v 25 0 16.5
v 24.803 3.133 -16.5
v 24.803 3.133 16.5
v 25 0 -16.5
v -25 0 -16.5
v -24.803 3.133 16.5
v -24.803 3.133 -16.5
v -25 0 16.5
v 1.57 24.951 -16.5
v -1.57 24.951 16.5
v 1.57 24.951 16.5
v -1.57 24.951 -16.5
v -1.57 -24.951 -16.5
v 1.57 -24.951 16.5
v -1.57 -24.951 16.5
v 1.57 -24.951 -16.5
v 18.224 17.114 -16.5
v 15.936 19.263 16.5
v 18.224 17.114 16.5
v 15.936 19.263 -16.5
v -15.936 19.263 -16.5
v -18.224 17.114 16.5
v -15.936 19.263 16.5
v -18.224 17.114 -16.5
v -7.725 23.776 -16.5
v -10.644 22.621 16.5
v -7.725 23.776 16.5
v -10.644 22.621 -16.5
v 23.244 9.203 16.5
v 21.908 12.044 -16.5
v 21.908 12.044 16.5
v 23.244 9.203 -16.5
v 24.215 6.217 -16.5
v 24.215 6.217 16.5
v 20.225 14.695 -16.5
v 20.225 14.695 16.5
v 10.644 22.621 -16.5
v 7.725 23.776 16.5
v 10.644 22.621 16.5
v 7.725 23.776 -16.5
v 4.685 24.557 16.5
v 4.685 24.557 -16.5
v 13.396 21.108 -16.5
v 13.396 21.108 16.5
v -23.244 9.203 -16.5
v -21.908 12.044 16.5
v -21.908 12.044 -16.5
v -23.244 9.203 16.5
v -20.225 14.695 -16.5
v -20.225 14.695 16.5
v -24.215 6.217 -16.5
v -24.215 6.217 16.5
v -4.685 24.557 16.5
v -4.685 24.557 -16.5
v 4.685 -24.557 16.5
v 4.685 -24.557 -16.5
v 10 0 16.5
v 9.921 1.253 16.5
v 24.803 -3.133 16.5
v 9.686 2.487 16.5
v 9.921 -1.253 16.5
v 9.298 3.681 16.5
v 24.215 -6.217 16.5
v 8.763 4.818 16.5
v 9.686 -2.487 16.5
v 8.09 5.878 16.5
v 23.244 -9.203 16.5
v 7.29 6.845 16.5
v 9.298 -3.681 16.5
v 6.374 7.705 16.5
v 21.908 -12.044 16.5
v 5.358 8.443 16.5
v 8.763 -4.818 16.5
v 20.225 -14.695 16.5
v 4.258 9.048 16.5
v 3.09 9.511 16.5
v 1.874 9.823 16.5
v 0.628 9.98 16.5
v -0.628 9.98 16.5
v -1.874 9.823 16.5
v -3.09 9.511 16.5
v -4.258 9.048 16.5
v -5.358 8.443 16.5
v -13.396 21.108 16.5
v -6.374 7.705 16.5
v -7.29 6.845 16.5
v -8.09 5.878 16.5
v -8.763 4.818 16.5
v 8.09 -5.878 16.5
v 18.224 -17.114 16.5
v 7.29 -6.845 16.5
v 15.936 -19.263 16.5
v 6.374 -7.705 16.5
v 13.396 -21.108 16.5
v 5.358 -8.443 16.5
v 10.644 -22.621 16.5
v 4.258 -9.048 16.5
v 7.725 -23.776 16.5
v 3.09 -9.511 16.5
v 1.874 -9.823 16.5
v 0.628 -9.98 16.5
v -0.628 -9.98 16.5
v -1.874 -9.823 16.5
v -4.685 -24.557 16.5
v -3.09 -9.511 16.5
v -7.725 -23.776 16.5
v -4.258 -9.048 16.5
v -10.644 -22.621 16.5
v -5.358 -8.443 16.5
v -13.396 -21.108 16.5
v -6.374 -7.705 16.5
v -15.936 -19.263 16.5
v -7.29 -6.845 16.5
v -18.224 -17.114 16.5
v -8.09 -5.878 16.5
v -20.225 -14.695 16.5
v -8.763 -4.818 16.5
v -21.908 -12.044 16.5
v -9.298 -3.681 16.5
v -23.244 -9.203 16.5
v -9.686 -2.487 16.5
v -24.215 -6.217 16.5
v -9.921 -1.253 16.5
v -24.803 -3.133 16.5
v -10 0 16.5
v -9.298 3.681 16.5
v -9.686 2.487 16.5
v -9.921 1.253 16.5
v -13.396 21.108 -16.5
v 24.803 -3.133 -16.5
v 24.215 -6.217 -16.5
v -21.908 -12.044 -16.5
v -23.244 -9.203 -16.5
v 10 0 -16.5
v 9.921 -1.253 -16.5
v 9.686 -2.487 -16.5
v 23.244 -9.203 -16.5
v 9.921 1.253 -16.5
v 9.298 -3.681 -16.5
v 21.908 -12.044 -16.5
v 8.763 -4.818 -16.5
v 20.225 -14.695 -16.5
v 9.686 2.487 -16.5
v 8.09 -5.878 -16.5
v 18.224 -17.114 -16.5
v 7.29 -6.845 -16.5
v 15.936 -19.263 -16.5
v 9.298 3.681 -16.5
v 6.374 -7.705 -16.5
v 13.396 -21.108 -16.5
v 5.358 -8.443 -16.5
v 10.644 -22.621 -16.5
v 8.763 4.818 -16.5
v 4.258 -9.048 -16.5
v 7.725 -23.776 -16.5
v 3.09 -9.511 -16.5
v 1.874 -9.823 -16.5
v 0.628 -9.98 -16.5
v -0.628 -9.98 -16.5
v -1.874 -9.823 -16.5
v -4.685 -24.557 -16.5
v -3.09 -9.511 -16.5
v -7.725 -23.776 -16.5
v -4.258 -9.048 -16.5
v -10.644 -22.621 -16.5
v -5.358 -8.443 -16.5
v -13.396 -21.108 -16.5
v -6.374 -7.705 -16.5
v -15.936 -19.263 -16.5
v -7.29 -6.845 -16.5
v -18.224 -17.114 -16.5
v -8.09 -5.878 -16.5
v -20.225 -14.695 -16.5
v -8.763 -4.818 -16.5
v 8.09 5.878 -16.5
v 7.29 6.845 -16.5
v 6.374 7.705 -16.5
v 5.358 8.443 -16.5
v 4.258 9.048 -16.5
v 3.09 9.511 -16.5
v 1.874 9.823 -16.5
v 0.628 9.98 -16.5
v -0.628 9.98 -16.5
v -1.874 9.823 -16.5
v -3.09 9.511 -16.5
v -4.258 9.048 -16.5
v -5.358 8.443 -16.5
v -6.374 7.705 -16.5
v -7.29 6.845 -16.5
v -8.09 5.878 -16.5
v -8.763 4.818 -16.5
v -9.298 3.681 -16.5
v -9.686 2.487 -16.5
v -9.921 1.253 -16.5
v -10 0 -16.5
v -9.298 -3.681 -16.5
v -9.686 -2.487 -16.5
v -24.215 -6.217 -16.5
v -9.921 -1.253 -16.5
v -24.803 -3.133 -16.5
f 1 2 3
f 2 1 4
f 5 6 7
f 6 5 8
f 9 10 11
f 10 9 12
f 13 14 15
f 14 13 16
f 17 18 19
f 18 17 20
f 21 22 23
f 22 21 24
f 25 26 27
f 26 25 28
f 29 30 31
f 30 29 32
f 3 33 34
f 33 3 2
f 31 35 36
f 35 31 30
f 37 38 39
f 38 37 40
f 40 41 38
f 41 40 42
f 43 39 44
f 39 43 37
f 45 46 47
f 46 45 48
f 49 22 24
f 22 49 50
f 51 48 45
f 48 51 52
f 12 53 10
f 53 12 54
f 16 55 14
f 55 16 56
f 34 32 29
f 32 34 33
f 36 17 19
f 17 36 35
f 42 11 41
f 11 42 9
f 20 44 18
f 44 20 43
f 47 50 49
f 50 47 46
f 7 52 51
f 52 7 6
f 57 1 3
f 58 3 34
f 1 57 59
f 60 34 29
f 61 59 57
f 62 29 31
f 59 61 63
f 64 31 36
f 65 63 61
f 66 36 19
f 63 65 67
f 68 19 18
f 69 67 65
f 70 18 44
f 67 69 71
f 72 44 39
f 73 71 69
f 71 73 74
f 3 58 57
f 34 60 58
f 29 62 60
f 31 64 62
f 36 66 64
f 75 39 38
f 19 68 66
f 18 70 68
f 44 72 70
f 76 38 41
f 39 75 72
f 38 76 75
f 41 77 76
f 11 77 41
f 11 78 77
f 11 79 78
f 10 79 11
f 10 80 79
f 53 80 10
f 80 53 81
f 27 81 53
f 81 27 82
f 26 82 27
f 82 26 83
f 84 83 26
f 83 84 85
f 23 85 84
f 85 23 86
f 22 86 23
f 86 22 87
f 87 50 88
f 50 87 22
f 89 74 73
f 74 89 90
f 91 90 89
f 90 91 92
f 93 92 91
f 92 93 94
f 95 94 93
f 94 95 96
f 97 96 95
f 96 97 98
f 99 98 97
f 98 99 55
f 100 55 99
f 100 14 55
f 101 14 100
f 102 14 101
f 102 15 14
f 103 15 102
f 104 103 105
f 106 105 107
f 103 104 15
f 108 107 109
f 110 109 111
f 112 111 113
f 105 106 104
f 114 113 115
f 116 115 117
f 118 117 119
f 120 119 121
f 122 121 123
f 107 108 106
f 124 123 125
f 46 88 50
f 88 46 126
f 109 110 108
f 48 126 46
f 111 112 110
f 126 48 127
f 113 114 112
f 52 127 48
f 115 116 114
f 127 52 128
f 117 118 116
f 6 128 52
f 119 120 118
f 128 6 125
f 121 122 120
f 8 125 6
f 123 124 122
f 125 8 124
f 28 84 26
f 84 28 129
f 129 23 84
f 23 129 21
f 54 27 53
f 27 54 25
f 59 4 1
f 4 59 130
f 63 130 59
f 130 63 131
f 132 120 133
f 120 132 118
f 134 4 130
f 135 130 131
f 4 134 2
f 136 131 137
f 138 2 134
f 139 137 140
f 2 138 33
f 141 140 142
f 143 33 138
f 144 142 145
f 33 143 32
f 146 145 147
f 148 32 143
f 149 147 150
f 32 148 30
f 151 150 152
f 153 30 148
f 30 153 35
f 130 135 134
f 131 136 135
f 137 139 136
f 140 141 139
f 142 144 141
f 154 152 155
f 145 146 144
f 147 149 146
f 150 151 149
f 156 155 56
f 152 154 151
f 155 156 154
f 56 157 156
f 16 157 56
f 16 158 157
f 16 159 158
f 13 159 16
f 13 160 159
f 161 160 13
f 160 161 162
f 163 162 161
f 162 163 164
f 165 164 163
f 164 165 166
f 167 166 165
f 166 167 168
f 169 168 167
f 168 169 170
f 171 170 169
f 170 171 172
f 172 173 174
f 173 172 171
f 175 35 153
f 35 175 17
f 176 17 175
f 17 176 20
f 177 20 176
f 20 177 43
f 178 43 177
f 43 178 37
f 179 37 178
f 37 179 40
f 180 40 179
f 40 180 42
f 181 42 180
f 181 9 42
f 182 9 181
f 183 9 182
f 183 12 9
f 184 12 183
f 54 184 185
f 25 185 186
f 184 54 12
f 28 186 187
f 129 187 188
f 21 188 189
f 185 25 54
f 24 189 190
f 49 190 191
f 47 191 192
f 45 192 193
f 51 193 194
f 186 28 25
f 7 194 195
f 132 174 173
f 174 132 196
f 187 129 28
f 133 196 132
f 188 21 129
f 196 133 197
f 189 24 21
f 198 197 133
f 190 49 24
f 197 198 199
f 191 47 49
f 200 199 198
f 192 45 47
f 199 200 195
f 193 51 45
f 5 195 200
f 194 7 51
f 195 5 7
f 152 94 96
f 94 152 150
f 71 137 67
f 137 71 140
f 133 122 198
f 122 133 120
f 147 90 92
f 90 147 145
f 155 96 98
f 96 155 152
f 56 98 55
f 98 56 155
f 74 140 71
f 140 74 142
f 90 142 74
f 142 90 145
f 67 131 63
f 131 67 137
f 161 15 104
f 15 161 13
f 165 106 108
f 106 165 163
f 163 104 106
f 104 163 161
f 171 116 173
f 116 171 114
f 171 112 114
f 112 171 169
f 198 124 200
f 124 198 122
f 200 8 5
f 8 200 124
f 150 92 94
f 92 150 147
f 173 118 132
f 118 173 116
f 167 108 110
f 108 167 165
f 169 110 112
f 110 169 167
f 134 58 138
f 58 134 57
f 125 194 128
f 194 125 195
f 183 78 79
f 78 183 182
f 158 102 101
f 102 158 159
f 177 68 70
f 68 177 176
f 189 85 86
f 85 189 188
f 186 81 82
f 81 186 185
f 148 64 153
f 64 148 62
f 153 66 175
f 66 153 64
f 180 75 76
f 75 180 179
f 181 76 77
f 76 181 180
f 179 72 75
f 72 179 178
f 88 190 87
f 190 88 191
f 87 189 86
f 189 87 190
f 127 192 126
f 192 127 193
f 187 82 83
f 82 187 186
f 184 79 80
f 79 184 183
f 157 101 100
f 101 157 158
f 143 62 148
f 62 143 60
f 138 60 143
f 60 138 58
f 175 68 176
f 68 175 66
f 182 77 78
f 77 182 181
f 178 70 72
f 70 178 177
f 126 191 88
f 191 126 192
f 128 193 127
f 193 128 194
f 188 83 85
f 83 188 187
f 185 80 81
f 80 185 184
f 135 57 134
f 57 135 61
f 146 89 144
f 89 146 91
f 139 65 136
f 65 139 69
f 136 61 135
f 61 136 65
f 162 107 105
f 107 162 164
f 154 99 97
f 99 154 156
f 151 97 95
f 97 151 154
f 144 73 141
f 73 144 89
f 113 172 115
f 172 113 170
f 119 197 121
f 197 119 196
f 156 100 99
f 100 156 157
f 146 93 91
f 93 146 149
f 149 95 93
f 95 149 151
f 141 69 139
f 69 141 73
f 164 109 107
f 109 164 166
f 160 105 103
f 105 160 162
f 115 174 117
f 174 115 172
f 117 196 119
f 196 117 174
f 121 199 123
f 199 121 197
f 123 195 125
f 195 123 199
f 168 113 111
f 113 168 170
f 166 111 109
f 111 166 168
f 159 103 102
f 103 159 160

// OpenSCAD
$fn = 50;


difference() {
	union() {
		translate(v = [0, 0, -16.5000000000]) {
			cylinder(h = 33, r = 25.0000000000);
		}
	}
	union() {
		translate(v = [0, 0, -100.0000000000]) {
			cylinder(h = 200, r = 10);
		}
	}
}
